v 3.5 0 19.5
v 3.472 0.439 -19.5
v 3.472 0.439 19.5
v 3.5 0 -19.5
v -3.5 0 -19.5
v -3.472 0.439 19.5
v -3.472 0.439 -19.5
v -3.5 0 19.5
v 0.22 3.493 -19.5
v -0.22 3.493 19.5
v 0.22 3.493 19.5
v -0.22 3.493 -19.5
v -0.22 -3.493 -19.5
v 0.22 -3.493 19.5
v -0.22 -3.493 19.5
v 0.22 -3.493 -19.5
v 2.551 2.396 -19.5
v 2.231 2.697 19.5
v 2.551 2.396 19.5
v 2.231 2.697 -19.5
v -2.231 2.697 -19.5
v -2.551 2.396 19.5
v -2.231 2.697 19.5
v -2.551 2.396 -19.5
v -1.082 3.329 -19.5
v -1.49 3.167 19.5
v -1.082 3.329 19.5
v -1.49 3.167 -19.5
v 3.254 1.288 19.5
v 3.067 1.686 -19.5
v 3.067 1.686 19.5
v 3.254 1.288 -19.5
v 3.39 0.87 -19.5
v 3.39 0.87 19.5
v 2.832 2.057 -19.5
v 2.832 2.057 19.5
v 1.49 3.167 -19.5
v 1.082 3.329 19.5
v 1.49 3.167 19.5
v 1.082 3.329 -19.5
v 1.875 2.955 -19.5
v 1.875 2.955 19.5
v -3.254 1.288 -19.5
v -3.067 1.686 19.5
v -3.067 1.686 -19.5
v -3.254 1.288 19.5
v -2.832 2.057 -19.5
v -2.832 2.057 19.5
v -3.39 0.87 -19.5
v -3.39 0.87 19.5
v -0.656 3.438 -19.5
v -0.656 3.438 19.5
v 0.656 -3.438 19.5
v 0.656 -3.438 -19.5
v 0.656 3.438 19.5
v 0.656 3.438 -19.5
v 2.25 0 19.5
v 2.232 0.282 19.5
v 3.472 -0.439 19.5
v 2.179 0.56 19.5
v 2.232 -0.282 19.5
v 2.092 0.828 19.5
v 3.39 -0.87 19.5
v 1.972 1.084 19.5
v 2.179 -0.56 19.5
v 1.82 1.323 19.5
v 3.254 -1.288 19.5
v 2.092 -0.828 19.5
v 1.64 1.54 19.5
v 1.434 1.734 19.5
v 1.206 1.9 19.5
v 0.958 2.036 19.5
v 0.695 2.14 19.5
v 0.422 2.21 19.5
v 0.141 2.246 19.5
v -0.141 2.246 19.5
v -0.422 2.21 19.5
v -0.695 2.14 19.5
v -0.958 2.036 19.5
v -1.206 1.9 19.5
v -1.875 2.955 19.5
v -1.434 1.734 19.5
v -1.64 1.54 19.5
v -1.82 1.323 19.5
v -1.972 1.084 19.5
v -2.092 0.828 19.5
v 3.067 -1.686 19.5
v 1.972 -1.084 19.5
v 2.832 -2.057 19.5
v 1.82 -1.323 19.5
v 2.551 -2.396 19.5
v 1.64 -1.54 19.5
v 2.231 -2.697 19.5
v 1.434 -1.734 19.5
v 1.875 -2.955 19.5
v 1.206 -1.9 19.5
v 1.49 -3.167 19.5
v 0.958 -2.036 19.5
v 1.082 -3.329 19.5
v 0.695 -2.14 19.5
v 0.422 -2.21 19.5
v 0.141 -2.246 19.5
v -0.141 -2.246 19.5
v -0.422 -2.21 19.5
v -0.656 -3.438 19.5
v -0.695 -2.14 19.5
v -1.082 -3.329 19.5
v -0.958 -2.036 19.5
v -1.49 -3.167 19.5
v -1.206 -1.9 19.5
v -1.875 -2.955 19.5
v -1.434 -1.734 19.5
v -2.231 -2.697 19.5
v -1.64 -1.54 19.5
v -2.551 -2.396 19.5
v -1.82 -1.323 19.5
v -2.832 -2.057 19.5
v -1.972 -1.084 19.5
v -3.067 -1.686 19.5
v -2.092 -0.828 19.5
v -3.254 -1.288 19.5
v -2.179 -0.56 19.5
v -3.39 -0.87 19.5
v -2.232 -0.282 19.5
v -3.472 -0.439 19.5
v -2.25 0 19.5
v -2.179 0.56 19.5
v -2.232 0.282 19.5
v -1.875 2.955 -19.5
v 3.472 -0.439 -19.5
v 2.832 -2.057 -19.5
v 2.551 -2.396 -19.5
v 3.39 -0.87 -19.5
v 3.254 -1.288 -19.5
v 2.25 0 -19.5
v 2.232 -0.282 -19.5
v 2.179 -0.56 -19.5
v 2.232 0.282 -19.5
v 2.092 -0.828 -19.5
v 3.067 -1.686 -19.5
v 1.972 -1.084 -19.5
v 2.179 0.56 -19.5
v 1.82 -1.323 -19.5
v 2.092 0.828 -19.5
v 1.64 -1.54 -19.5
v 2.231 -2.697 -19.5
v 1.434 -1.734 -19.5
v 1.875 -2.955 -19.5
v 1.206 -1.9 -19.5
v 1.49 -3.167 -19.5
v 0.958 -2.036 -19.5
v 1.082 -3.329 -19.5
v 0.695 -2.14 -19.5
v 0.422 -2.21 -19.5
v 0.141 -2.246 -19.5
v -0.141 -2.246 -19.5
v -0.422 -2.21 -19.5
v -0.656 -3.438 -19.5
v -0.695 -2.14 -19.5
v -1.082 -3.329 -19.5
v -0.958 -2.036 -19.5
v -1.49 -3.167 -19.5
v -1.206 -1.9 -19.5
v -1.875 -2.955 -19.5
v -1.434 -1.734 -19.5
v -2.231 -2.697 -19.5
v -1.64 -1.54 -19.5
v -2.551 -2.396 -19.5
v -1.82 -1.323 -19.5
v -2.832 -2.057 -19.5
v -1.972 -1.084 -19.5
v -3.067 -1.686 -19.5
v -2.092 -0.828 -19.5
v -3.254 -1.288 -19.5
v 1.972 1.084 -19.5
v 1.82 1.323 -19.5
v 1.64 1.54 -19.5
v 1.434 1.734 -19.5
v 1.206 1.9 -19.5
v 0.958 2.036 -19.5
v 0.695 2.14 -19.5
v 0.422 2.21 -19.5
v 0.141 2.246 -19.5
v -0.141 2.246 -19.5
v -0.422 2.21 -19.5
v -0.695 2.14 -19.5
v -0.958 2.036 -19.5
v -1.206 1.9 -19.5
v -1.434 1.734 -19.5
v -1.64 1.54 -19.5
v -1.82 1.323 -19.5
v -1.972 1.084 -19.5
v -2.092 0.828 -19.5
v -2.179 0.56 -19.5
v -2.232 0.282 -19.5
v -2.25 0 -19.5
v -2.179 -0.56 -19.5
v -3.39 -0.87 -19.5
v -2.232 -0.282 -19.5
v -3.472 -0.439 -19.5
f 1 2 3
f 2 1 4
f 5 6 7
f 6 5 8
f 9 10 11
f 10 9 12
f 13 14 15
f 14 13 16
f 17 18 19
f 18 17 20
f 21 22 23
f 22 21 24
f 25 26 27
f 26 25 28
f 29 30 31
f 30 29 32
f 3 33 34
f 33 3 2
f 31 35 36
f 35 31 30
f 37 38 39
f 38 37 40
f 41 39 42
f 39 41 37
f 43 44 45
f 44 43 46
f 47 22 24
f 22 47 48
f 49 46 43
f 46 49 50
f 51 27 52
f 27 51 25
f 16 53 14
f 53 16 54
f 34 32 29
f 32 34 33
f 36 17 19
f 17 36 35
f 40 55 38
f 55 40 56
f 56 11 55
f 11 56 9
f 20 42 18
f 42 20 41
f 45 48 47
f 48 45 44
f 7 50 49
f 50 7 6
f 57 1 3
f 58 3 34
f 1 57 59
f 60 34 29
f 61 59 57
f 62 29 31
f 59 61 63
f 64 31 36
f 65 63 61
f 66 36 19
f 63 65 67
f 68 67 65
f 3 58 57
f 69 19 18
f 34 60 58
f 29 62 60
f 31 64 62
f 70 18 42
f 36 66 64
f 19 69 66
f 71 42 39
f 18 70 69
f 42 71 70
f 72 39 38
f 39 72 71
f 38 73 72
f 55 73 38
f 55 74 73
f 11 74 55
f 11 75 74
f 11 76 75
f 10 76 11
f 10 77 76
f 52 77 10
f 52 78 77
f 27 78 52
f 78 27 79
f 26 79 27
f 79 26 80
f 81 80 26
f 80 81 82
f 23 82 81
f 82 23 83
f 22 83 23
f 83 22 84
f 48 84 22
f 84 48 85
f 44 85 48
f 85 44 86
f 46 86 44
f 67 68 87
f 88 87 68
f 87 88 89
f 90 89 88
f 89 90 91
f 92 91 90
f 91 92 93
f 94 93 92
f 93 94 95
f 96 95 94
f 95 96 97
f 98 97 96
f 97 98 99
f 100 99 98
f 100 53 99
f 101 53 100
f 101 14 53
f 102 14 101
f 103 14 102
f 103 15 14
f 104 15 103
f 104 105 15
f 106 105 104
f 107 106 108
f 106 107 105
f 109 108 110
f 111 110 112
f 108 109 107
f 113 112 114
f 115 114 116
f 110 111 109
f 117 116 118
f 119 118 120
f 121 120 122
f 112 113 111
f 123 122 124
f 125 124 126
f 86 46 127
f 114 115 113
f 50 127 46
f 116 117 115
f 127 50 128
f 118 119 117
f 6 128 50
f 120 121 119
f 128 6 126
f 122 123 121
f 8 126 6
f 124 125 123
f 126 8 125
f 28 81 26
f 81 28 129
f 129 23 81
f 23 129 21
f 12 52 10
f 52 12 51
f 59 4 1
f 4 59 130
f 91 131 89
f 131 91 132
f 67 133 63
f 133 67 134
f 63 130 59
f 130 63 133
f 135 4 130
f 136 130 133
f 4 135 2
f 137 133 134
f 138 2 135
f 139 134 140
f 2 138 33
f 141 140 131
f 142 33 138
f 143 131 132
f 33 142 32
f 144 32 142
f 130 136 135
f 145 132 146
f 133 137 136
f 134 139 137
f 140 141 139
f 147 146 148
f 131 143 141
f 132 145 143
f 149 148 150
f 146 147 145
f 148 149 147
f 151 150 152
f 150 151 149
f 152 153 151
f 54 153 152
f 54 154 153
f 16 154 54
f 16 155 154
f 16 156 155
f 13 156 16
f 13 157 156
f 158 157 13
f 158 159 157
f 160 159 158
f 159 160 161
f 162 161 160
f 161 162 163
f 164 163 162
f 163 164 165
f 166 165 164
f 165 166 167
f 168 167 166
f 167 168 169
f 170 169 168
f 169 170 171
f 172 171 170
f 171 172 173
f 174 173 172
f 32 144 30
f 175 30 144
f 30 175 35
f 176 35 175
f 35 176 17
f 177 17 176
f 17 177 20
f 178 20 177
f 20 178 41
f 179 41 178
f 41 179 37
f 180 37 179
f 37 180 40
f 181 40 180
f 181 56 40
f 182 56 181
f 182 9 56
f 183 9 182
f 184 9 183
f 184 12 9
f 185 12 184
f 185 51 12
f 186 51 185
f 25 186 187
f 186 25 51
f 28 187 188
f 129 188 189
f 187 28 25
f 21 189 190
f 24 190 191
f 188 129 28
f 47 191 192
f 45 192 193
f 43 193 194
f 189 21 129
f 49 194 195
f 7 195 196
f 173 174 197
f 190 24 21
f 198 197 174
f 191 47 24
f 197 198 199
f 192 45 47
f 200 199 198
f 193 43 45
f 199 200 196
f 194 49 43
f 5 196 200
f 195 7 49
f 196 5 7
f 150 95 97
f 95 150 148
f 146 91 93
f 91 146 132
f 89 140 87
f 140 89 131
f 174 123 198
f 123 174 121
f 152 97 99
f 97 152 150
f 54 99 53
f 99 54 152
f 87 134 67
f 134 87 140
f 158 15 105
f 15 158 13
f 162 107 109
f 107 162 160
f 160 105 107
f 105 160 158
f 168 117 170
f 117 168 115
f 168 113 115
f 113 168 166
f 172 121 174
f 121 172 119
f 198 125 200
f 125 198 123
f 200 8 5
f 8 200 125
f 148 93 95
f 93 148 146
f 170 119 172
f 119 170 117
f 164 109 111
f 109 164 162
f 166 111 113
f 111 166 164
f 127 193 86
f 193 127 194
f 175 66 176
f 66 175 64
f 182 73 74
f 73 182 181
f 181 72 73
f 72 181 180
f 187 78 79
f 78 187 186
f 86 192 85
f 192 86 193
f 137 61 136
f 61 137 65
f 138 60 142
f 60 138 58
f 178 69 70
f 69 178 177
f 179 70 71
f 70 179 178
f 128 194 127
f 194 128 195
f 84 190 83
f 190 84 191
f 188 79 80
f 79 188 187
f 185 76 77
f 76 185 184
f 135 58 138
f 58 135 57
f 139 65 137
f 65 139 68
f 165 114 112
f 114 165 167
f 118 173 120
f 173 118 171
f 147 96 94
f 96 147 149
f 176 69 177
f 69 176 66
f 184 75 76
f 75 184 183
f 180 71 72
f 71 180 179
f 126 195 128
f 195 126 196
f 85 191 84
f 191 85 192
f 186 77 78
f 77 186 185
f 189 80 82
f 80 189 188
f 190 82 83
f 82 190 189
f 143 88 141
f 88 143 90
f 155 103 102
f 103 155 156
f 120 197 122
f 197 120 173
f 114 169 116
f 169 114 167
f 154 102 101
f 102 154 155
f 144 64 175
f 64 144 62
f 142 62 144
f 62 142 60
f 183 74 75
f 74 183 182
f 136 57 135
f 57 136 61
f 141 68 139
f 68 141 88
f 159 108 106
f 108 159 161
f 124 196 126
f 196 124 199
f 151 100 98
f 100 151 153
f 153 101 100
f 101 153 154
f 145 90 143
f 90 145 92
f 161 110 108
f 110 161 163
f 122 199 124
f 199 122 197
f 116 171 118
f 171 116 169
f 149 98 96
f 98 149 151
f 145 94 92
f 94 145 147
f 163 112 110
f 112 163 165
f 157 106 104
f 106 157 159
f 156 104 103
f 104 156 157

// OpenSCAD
$fn = 50;


difference() {
	union() {
		translate(v = [0, 0, -19.5000000000]) {
			cylinder(h = 39, r = 3.5000000000);
		}
	}
	union() {
		translate(v = [0, 0, -100.0000000000]) {
			cylinder(h = 200, r = 2.2500000000);
		}
	}
}
